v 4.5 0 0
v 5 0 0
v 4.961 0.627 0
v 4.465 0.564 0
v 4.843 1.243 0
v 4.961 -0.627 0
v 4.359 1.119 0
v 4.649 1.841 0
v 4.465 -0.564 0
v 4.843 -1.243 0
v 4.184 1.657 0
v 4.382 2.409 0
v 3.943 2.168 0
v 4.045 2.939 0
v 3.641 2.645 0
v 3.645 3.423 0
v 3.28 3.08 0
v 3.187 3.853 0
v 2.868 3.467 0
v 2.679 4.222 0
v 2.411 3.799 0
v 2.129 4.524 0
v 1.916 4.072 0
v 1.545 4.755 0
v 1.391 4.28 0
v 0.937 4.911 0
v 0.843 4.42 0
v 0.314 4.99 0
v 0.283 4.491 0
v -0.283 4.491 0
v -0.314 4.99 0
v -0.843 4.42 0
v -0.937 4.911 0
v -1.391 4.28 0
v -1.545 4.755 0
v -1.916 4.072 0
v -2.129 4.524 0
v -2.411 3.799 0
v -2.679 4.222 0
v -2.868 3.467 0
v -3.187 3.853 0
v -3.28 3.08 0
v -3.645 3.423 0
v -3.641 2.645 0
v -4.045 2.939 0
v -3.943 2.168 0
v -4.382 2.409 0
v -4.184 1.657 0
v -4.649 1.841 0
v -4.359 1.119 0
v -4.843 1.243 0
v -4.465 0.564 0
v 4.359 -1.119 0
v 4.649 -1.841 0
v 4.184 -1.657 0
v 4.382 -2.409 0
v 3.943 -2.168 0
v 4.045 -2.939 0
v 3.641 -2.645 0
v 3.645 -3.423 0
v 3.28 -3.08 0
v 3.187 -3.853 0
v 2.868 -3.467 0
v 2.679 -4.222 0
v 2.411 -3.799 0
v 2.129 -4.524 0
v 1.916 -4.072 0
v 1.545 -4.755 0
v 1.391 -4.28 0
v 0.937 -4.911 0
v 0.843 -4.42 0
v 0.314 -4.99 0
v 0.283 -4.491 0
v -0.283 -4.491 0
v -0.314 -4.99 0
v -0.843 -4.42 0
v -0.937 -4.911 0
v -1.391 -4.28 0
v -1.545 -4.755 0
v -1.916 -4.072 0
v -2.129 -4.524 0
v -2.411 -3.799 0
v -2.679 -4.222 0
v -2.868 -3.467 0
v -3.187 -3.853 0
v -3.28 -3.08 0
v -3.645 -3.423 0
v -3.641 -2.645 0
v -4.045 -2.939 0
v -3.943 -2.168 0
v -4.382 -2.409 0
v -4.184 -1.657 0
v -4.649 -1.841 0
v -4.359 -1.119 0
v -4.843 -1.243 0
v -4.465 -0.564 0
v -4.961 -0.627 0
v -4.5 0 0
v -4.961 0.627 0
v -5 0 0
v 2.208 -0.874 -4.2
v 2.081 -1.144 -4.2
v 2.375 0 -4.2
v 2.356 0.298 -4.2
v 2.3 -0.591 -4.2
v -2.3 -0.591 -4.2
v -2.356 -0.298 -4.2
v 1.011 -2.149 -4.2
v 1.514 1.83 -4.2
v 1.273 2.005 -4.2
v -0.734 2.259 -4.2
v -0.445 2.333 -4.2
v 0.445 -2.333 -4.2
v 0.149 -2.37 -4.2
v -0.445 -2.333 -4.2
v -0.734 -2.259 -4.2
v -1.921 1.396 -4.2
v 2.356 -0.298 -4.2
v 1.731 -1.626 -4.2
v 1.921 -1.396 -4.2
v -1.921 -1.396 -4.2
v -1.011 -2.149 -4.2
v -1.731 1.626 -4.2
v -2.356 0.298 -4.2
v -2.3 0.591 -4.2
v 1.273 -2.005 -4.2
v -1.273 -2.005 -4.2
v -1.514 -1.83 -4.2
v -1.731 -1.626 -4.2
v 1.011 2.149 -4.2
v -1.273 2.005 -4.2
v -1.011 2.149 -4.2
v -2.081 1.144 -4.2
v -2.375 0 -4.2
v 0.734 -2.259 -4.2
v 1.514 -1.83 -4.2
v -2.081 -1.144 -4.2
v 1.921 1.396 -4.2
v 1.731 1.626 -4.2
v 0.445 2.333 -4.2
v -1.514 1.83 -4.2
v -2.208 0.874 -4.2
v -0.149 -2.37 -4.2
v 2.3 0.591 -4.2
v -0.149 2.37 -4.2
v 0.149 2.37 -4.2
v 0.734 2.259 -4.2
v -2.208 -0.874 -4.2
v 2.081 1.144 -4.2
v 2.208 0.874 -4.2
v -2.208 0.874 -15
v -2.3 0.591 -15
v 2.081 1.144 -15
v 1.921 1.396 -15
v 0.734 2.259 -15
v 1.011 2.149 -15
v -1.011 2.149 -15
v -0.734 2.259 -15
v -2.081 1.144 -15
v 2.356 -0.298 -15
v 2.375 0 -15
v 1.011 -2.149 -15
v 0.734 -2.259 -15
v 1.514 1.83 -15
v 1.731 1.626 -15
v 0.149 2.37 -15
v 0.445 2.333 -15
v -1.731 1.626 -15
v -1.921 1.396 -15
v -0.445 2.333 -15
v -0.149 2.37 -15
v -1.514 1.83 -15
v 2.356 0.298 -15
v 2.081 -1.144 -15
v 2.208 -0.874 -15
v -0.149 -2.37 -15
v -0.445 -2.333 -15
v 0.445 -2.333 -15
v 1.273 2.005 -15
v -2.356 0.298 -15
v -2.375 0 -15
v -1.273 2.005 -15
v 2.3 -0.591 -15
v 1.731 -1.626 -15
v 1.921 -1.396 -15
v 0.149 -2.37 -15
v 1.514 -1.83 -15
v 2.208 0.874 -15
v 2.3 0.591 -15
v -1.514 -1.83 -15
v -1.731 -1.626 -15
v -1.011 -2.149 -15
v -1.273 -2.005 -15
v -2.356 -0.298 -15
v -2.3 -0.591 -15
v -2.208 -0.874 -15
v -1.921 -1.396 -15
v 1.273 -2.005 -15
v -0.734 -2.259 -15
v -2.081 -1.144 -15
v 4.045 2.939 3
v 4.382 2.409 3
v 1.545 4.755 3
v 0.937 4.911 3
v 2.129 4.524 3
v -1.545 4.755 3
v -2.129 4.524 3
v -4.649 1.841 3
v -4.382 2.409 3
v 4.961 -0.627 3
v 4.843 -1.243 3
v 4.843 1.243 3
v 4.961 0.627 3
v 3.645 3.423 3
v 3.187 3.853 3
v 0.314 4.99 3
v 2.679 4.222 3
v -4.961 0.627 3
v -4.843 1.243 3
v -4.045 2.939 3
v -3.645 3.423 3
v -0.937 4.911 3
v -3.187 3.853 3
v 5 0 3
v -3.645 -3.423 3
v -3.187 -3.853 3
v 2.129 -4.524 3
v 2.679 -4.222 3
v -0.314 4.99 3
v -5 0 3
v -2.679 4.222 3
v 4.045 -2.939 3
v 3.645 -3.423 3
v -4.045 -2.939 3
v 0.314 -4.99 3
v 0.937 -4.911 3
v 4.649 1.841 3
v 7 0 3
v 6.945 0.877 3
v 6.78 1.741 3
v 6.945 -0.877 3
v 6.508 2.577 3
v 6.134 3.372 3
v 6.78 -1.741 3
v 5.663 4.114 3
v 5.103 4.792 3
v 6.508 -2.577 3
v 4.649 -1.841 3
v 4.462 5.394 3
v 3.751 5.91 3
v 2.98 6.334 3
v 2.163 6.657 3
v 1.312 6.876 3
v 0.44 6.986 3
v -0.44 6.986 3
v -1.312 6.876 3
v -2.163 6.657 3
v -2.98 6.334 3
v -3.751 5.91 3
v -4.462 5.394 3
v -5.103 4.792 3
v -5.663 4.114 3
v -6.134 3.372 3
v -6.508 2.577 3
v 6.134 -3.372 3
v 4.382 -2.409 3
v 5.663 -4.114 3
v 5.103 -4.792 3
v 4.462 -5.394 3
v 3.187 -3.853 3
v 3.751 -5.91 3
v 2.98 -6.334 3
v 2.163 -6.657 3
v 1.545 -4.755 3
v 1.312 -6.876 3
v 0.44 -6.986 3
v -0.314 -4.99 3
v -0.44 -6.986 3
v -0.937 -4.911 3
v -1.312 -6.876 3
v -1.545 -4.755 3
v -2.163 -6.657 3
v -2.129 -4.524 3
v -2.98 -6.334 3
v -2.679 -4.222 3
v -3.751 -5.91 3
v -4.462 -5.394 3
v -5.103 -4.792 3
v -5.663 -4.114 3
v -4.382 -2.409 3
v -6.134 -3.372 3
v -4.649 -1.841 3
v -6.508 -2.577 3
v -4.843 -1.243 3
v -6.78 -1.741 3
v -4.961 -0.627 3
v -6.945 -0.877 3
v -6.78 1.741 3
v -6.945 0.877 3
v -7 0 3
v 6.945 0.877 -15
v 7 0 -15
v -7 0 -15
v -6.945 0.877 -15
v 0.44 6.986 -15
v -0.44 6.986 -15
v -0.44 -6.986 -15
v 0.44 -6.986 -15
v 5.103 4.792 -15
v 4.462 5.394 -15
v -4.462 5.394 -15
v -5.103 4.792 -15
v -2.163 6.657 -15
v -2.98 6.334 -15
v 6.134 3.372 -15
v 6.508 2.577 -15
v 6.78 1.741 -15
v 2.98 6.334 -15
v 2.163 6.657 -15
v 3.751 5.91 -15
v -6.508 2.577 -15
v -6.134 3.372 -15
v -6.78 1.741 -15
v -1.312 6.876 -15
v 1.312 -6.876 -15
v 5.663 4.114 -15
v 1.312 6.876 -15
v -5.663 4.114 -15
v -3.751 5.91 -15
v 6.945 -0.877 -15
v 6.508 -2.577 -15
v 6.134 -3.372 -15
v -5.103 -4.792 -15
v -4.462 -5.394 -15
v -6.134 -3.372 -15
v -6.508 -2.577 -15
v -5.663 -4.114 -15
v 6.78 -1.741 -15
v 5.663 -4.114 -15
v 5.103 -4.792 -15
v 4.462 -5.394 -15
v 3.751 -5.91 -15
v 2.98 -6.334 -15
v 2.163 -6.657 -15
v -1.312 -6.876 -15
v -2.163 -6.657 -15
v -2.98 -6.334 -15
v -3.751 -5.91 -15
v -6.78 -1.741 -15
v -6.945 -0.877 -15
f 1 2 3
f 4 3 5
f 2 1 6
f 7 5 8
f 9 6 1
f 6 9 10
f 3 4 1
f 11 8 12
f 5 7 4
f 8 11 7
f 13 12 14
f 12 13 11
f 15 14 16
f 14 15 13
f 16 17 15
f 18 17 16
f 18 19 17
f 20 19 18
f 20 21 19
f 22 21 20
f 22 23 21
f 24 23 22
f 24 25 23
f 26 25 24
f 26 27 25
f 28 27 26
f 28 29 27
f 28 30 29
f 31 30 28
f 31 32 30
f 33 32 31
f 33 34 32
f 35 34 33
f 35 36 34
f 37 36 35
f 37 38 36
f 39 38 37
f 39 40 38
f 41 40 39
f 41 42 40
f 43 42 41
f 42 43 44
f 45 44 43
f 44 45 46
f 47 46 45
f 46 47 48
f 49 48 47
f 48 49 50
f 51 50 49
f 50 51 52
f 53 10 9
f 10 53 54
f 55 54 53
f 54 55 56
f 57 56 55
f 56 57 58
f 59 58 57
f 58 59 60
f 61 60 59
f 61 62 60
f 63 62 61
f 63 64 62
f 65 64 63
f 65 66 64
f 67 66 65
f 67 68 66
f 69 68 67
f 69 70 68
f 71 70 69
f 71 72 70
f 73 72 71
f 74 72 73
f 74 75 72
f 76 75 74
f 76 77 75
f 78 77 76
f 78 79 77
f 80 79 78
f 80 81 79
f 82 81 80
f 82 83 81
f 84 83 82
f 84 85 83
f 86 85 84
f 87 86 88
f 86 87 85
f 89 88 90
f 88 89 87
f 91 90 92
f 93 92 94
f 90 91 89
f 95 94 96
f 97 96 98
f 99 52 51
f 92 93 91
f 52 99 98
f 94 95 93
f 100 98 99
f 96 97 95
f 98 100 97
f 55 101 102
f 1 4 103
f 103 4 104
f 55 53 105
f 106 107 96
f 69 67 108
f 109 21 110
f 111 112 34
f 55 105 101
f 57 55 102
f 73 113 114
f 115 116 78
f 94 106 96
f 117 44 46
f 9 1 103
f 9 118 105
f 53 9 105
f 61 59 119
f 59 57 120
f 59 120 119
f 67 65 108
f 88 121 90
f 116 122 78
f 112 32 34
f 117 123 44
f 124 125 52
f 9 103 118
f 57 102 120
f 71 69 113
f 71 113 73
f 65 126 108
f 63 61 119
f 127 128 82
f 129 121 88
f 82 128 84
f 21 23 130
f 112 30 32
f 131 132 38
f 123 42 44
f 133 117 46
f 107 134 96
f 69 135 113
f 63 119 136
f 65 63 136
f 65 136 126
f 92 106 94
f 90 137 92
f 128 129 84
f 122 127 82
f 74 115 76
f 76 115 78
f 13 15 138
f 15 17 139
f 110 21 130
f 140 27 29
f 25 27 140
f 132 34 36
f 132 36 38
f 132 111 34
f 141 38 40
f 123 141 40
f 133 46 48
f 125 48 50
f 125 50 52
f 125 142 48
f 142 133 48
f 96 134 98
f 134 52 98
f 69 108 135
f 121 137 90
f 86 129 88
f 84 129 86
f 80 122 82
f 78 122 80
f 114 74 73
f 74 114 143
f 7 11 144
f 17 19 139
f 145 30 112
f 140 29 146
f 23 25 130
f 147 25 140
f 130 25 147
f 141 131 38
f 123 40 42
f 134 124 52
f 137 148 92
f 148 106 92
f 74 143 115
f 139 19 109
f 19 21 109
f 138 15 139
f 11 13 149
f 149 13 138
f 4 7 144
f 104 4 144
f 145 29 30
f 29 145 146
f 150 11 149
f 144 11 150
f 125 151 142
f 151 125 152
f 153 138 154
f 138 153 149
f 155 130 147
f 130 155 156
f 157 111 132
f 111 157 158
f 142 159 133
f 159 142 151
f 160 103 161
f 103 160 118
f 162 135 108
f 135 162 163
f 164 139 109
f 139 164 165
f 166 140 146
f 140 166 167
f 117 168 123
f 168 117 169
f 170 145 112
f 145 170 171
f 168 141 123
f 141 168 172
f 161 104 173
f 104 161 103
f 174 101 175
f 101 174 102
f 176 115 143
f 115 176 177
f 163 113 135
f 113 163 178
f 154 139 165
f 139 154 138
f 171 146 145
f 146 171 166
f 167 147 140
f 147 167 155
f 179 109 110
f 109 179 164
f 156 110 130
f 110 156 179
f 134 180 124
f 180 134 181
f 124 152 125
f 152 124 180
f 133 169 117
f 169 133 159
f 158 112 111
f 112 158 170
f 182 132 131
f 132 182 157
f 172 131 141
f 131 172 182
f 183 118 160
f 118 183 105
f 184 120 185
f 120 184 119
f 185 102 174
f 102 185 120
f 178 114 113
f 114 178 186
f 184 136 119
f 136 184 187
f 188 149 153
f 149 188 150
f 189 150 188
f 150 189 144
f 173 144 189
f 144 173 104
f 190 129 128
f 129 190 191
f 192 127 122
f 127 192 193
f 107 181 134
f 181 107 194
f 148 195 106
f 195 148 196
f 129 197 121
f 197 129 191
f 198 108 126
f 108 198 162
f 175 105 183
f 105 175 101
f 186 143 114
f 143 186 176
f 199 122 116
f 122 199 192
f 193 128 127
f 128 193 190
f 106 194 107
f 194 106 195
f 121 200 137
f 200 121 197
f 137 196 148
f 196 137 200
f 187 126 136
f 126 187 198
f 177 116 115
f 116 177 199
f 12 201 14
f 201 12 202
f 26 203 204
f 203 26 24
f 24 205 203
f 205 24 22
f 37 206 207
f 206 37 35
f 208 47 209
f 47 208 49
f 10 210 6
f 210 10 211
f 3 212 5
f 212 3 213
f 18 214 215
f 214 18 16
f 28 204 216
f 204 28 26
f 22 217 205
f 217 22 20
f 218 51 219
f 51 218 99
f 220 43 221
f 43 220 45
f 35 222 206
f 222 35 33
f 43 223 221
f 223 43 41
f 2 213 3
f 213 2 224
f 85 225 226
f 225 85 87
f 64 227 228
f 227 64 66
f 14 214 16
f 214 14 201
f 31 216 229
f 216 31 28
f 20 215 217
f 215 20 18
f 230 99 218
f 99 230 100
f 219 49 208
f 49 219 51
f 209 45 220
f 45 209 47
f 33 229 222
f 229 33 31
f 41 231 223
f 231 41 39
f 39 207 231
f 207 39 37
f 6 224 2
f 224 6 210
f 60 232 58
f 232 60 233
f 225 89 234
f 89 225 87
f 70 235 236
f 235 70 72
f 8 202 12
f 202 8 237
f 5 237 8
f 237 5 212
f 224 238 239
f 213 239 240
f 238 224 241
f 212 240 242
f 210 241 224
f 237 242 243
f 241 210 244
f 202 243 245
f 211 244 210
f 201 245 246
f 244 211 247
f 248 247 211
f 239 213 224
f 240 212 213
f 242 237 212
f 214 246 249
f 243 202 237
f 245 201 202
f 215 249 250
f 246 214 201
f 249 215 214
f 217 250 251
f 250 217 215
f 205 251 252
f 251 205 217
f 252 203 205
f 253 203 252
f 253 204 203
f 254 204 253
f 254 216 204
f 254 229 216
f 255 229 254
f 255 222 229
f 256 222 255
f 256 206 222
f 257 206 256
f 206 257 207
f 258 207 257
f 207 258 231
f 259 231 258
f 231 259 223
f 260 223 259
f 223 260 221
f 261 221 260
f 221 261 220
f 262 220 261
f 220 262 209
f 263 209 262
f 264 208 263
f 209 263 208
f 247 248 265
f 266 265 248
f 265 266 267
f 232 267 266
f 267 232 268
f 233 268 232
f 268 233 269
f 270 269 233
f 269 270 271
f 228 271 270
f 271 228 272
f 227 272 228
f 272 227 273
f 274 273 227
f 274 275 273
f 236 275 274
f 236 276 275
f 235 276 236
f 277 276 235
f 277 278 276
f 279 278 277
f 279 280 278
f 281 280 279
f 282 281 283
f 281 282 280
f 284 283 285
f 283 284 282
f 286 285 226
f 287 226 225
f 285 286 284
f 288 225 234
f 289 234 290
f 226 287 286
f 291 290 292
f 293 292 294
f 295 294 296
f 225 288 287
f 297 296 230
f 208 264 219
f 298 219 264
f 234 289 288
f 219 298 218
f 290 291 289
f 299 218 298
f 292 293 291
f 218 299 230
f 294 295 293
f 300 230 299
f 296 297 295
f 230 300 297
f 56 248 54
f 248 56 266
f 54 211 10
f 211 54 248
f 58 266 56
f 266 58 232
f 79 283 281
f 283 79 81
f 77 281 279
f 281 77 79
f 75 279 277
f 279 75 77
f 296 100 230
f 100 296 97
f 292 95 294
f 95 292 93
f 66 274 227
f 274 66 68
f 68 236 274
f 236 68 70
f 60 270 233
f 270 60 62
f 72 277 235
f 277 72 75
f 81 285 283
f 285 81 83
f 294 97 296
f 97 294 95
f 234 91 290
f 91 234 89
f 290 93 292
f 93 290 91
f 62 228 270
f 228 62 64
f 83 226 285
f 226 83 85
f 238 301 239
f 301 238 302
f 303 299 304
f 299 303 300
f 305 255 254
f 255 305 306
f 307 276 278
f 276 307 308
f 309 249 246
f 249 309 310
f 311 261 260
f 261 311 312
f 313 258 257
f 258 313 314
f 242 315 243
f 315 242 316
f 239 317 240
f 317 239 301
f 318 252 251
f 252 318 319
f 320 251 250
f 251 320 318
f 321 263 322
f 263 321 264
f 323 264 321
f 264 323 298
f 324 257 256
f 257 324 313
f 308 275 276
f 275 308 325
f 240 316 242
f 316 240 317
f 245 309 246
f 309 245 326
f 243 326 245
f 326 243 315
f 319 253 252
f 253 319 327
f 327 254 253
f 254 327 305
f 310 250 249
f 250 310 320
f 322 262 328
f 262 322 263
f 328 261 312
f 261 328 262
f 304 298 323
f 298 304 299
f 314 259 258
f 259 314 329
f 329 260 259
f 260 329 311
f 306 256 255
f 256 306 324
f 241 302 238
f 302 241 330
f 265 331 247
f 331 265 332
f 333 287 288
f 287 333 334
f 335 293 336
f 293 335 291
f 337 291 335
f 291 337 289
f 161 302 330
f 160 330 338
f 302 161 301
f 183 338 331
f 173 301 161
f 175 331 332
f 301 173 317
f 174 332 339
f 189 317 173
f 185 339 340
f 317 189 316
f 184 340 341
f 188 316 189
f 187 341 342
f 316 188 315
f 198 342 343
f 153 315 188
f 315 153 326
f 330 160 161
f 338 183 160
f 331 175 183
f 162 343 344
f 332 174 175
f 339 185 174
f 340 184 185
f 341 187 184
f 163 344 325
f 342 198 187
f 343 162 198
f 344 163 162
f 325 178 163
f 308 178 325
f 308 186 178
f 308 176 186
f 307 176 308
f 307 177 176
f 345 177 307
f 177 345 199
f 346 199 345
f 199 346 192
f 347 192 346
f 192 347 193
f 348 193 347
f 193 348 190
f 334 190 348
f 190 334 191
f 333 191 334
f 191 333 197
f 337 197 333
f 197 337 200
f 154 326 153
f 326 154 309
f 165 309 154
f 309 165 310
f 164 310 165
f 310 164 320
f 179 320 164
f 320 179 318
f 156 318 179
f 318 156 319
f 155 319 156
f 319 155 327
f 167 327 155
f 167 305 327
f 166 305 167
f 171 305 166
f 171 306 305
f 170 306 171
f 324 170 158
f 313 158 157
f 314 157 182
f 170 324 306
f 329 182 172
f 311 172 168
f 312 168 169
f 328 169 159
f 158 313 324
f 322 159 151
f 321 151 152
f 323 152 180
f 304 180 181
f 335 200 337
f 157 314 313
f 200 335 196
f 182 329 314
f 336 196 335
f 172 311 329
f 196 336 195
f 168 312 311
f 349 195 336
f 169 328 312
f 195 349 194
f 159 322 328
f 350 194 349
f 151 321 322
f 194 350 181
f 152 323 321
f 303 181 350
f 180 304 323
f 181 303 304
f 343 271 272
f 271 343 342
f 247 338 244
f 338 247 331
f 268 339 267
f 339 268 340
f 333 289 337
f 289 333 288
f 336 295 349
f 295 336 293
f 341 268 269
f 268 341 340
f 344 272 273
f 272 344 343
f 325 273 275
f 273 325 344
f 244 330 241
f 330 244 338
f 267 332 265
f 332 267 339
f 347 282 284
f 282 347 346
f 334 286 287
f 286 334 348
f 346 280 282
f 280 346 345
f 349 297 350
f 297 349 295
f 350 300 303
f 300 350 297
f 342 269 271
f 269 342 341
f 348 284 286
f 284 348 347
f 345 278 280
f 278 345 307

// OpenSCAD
$fn = 50;

difference() {
	union() {
		translate(v = [0, 0, -15.0]) {
			cylinder(h = 18, r = 7.0);
		}
	}
	union() {
		translate(v = [0, 0, 0]) {
			rotate(a = [0, 0, 0]) {
				difference() {
					union() {
						translate(v = [0, 0, -18.0]) {
							cylinder(h = 18, r = 2.25);
						}
						translate(v = [0, 0, -4.2]) {
							cylinder(h = 4.2, r1 = 2.375, r2 = 4.5);
						}
						translate(v = [0, 0, -18.0]) {
							cylinder(h = 18, r = 2.375);
						}
						translate(v = [0, 0, -18.0]) {
							cylinder(h = 18, r = 2.25);
						}
					}
					union();
				}
			}
		}
		#cylinder(h = 3, r = 5.0);
	}
}
